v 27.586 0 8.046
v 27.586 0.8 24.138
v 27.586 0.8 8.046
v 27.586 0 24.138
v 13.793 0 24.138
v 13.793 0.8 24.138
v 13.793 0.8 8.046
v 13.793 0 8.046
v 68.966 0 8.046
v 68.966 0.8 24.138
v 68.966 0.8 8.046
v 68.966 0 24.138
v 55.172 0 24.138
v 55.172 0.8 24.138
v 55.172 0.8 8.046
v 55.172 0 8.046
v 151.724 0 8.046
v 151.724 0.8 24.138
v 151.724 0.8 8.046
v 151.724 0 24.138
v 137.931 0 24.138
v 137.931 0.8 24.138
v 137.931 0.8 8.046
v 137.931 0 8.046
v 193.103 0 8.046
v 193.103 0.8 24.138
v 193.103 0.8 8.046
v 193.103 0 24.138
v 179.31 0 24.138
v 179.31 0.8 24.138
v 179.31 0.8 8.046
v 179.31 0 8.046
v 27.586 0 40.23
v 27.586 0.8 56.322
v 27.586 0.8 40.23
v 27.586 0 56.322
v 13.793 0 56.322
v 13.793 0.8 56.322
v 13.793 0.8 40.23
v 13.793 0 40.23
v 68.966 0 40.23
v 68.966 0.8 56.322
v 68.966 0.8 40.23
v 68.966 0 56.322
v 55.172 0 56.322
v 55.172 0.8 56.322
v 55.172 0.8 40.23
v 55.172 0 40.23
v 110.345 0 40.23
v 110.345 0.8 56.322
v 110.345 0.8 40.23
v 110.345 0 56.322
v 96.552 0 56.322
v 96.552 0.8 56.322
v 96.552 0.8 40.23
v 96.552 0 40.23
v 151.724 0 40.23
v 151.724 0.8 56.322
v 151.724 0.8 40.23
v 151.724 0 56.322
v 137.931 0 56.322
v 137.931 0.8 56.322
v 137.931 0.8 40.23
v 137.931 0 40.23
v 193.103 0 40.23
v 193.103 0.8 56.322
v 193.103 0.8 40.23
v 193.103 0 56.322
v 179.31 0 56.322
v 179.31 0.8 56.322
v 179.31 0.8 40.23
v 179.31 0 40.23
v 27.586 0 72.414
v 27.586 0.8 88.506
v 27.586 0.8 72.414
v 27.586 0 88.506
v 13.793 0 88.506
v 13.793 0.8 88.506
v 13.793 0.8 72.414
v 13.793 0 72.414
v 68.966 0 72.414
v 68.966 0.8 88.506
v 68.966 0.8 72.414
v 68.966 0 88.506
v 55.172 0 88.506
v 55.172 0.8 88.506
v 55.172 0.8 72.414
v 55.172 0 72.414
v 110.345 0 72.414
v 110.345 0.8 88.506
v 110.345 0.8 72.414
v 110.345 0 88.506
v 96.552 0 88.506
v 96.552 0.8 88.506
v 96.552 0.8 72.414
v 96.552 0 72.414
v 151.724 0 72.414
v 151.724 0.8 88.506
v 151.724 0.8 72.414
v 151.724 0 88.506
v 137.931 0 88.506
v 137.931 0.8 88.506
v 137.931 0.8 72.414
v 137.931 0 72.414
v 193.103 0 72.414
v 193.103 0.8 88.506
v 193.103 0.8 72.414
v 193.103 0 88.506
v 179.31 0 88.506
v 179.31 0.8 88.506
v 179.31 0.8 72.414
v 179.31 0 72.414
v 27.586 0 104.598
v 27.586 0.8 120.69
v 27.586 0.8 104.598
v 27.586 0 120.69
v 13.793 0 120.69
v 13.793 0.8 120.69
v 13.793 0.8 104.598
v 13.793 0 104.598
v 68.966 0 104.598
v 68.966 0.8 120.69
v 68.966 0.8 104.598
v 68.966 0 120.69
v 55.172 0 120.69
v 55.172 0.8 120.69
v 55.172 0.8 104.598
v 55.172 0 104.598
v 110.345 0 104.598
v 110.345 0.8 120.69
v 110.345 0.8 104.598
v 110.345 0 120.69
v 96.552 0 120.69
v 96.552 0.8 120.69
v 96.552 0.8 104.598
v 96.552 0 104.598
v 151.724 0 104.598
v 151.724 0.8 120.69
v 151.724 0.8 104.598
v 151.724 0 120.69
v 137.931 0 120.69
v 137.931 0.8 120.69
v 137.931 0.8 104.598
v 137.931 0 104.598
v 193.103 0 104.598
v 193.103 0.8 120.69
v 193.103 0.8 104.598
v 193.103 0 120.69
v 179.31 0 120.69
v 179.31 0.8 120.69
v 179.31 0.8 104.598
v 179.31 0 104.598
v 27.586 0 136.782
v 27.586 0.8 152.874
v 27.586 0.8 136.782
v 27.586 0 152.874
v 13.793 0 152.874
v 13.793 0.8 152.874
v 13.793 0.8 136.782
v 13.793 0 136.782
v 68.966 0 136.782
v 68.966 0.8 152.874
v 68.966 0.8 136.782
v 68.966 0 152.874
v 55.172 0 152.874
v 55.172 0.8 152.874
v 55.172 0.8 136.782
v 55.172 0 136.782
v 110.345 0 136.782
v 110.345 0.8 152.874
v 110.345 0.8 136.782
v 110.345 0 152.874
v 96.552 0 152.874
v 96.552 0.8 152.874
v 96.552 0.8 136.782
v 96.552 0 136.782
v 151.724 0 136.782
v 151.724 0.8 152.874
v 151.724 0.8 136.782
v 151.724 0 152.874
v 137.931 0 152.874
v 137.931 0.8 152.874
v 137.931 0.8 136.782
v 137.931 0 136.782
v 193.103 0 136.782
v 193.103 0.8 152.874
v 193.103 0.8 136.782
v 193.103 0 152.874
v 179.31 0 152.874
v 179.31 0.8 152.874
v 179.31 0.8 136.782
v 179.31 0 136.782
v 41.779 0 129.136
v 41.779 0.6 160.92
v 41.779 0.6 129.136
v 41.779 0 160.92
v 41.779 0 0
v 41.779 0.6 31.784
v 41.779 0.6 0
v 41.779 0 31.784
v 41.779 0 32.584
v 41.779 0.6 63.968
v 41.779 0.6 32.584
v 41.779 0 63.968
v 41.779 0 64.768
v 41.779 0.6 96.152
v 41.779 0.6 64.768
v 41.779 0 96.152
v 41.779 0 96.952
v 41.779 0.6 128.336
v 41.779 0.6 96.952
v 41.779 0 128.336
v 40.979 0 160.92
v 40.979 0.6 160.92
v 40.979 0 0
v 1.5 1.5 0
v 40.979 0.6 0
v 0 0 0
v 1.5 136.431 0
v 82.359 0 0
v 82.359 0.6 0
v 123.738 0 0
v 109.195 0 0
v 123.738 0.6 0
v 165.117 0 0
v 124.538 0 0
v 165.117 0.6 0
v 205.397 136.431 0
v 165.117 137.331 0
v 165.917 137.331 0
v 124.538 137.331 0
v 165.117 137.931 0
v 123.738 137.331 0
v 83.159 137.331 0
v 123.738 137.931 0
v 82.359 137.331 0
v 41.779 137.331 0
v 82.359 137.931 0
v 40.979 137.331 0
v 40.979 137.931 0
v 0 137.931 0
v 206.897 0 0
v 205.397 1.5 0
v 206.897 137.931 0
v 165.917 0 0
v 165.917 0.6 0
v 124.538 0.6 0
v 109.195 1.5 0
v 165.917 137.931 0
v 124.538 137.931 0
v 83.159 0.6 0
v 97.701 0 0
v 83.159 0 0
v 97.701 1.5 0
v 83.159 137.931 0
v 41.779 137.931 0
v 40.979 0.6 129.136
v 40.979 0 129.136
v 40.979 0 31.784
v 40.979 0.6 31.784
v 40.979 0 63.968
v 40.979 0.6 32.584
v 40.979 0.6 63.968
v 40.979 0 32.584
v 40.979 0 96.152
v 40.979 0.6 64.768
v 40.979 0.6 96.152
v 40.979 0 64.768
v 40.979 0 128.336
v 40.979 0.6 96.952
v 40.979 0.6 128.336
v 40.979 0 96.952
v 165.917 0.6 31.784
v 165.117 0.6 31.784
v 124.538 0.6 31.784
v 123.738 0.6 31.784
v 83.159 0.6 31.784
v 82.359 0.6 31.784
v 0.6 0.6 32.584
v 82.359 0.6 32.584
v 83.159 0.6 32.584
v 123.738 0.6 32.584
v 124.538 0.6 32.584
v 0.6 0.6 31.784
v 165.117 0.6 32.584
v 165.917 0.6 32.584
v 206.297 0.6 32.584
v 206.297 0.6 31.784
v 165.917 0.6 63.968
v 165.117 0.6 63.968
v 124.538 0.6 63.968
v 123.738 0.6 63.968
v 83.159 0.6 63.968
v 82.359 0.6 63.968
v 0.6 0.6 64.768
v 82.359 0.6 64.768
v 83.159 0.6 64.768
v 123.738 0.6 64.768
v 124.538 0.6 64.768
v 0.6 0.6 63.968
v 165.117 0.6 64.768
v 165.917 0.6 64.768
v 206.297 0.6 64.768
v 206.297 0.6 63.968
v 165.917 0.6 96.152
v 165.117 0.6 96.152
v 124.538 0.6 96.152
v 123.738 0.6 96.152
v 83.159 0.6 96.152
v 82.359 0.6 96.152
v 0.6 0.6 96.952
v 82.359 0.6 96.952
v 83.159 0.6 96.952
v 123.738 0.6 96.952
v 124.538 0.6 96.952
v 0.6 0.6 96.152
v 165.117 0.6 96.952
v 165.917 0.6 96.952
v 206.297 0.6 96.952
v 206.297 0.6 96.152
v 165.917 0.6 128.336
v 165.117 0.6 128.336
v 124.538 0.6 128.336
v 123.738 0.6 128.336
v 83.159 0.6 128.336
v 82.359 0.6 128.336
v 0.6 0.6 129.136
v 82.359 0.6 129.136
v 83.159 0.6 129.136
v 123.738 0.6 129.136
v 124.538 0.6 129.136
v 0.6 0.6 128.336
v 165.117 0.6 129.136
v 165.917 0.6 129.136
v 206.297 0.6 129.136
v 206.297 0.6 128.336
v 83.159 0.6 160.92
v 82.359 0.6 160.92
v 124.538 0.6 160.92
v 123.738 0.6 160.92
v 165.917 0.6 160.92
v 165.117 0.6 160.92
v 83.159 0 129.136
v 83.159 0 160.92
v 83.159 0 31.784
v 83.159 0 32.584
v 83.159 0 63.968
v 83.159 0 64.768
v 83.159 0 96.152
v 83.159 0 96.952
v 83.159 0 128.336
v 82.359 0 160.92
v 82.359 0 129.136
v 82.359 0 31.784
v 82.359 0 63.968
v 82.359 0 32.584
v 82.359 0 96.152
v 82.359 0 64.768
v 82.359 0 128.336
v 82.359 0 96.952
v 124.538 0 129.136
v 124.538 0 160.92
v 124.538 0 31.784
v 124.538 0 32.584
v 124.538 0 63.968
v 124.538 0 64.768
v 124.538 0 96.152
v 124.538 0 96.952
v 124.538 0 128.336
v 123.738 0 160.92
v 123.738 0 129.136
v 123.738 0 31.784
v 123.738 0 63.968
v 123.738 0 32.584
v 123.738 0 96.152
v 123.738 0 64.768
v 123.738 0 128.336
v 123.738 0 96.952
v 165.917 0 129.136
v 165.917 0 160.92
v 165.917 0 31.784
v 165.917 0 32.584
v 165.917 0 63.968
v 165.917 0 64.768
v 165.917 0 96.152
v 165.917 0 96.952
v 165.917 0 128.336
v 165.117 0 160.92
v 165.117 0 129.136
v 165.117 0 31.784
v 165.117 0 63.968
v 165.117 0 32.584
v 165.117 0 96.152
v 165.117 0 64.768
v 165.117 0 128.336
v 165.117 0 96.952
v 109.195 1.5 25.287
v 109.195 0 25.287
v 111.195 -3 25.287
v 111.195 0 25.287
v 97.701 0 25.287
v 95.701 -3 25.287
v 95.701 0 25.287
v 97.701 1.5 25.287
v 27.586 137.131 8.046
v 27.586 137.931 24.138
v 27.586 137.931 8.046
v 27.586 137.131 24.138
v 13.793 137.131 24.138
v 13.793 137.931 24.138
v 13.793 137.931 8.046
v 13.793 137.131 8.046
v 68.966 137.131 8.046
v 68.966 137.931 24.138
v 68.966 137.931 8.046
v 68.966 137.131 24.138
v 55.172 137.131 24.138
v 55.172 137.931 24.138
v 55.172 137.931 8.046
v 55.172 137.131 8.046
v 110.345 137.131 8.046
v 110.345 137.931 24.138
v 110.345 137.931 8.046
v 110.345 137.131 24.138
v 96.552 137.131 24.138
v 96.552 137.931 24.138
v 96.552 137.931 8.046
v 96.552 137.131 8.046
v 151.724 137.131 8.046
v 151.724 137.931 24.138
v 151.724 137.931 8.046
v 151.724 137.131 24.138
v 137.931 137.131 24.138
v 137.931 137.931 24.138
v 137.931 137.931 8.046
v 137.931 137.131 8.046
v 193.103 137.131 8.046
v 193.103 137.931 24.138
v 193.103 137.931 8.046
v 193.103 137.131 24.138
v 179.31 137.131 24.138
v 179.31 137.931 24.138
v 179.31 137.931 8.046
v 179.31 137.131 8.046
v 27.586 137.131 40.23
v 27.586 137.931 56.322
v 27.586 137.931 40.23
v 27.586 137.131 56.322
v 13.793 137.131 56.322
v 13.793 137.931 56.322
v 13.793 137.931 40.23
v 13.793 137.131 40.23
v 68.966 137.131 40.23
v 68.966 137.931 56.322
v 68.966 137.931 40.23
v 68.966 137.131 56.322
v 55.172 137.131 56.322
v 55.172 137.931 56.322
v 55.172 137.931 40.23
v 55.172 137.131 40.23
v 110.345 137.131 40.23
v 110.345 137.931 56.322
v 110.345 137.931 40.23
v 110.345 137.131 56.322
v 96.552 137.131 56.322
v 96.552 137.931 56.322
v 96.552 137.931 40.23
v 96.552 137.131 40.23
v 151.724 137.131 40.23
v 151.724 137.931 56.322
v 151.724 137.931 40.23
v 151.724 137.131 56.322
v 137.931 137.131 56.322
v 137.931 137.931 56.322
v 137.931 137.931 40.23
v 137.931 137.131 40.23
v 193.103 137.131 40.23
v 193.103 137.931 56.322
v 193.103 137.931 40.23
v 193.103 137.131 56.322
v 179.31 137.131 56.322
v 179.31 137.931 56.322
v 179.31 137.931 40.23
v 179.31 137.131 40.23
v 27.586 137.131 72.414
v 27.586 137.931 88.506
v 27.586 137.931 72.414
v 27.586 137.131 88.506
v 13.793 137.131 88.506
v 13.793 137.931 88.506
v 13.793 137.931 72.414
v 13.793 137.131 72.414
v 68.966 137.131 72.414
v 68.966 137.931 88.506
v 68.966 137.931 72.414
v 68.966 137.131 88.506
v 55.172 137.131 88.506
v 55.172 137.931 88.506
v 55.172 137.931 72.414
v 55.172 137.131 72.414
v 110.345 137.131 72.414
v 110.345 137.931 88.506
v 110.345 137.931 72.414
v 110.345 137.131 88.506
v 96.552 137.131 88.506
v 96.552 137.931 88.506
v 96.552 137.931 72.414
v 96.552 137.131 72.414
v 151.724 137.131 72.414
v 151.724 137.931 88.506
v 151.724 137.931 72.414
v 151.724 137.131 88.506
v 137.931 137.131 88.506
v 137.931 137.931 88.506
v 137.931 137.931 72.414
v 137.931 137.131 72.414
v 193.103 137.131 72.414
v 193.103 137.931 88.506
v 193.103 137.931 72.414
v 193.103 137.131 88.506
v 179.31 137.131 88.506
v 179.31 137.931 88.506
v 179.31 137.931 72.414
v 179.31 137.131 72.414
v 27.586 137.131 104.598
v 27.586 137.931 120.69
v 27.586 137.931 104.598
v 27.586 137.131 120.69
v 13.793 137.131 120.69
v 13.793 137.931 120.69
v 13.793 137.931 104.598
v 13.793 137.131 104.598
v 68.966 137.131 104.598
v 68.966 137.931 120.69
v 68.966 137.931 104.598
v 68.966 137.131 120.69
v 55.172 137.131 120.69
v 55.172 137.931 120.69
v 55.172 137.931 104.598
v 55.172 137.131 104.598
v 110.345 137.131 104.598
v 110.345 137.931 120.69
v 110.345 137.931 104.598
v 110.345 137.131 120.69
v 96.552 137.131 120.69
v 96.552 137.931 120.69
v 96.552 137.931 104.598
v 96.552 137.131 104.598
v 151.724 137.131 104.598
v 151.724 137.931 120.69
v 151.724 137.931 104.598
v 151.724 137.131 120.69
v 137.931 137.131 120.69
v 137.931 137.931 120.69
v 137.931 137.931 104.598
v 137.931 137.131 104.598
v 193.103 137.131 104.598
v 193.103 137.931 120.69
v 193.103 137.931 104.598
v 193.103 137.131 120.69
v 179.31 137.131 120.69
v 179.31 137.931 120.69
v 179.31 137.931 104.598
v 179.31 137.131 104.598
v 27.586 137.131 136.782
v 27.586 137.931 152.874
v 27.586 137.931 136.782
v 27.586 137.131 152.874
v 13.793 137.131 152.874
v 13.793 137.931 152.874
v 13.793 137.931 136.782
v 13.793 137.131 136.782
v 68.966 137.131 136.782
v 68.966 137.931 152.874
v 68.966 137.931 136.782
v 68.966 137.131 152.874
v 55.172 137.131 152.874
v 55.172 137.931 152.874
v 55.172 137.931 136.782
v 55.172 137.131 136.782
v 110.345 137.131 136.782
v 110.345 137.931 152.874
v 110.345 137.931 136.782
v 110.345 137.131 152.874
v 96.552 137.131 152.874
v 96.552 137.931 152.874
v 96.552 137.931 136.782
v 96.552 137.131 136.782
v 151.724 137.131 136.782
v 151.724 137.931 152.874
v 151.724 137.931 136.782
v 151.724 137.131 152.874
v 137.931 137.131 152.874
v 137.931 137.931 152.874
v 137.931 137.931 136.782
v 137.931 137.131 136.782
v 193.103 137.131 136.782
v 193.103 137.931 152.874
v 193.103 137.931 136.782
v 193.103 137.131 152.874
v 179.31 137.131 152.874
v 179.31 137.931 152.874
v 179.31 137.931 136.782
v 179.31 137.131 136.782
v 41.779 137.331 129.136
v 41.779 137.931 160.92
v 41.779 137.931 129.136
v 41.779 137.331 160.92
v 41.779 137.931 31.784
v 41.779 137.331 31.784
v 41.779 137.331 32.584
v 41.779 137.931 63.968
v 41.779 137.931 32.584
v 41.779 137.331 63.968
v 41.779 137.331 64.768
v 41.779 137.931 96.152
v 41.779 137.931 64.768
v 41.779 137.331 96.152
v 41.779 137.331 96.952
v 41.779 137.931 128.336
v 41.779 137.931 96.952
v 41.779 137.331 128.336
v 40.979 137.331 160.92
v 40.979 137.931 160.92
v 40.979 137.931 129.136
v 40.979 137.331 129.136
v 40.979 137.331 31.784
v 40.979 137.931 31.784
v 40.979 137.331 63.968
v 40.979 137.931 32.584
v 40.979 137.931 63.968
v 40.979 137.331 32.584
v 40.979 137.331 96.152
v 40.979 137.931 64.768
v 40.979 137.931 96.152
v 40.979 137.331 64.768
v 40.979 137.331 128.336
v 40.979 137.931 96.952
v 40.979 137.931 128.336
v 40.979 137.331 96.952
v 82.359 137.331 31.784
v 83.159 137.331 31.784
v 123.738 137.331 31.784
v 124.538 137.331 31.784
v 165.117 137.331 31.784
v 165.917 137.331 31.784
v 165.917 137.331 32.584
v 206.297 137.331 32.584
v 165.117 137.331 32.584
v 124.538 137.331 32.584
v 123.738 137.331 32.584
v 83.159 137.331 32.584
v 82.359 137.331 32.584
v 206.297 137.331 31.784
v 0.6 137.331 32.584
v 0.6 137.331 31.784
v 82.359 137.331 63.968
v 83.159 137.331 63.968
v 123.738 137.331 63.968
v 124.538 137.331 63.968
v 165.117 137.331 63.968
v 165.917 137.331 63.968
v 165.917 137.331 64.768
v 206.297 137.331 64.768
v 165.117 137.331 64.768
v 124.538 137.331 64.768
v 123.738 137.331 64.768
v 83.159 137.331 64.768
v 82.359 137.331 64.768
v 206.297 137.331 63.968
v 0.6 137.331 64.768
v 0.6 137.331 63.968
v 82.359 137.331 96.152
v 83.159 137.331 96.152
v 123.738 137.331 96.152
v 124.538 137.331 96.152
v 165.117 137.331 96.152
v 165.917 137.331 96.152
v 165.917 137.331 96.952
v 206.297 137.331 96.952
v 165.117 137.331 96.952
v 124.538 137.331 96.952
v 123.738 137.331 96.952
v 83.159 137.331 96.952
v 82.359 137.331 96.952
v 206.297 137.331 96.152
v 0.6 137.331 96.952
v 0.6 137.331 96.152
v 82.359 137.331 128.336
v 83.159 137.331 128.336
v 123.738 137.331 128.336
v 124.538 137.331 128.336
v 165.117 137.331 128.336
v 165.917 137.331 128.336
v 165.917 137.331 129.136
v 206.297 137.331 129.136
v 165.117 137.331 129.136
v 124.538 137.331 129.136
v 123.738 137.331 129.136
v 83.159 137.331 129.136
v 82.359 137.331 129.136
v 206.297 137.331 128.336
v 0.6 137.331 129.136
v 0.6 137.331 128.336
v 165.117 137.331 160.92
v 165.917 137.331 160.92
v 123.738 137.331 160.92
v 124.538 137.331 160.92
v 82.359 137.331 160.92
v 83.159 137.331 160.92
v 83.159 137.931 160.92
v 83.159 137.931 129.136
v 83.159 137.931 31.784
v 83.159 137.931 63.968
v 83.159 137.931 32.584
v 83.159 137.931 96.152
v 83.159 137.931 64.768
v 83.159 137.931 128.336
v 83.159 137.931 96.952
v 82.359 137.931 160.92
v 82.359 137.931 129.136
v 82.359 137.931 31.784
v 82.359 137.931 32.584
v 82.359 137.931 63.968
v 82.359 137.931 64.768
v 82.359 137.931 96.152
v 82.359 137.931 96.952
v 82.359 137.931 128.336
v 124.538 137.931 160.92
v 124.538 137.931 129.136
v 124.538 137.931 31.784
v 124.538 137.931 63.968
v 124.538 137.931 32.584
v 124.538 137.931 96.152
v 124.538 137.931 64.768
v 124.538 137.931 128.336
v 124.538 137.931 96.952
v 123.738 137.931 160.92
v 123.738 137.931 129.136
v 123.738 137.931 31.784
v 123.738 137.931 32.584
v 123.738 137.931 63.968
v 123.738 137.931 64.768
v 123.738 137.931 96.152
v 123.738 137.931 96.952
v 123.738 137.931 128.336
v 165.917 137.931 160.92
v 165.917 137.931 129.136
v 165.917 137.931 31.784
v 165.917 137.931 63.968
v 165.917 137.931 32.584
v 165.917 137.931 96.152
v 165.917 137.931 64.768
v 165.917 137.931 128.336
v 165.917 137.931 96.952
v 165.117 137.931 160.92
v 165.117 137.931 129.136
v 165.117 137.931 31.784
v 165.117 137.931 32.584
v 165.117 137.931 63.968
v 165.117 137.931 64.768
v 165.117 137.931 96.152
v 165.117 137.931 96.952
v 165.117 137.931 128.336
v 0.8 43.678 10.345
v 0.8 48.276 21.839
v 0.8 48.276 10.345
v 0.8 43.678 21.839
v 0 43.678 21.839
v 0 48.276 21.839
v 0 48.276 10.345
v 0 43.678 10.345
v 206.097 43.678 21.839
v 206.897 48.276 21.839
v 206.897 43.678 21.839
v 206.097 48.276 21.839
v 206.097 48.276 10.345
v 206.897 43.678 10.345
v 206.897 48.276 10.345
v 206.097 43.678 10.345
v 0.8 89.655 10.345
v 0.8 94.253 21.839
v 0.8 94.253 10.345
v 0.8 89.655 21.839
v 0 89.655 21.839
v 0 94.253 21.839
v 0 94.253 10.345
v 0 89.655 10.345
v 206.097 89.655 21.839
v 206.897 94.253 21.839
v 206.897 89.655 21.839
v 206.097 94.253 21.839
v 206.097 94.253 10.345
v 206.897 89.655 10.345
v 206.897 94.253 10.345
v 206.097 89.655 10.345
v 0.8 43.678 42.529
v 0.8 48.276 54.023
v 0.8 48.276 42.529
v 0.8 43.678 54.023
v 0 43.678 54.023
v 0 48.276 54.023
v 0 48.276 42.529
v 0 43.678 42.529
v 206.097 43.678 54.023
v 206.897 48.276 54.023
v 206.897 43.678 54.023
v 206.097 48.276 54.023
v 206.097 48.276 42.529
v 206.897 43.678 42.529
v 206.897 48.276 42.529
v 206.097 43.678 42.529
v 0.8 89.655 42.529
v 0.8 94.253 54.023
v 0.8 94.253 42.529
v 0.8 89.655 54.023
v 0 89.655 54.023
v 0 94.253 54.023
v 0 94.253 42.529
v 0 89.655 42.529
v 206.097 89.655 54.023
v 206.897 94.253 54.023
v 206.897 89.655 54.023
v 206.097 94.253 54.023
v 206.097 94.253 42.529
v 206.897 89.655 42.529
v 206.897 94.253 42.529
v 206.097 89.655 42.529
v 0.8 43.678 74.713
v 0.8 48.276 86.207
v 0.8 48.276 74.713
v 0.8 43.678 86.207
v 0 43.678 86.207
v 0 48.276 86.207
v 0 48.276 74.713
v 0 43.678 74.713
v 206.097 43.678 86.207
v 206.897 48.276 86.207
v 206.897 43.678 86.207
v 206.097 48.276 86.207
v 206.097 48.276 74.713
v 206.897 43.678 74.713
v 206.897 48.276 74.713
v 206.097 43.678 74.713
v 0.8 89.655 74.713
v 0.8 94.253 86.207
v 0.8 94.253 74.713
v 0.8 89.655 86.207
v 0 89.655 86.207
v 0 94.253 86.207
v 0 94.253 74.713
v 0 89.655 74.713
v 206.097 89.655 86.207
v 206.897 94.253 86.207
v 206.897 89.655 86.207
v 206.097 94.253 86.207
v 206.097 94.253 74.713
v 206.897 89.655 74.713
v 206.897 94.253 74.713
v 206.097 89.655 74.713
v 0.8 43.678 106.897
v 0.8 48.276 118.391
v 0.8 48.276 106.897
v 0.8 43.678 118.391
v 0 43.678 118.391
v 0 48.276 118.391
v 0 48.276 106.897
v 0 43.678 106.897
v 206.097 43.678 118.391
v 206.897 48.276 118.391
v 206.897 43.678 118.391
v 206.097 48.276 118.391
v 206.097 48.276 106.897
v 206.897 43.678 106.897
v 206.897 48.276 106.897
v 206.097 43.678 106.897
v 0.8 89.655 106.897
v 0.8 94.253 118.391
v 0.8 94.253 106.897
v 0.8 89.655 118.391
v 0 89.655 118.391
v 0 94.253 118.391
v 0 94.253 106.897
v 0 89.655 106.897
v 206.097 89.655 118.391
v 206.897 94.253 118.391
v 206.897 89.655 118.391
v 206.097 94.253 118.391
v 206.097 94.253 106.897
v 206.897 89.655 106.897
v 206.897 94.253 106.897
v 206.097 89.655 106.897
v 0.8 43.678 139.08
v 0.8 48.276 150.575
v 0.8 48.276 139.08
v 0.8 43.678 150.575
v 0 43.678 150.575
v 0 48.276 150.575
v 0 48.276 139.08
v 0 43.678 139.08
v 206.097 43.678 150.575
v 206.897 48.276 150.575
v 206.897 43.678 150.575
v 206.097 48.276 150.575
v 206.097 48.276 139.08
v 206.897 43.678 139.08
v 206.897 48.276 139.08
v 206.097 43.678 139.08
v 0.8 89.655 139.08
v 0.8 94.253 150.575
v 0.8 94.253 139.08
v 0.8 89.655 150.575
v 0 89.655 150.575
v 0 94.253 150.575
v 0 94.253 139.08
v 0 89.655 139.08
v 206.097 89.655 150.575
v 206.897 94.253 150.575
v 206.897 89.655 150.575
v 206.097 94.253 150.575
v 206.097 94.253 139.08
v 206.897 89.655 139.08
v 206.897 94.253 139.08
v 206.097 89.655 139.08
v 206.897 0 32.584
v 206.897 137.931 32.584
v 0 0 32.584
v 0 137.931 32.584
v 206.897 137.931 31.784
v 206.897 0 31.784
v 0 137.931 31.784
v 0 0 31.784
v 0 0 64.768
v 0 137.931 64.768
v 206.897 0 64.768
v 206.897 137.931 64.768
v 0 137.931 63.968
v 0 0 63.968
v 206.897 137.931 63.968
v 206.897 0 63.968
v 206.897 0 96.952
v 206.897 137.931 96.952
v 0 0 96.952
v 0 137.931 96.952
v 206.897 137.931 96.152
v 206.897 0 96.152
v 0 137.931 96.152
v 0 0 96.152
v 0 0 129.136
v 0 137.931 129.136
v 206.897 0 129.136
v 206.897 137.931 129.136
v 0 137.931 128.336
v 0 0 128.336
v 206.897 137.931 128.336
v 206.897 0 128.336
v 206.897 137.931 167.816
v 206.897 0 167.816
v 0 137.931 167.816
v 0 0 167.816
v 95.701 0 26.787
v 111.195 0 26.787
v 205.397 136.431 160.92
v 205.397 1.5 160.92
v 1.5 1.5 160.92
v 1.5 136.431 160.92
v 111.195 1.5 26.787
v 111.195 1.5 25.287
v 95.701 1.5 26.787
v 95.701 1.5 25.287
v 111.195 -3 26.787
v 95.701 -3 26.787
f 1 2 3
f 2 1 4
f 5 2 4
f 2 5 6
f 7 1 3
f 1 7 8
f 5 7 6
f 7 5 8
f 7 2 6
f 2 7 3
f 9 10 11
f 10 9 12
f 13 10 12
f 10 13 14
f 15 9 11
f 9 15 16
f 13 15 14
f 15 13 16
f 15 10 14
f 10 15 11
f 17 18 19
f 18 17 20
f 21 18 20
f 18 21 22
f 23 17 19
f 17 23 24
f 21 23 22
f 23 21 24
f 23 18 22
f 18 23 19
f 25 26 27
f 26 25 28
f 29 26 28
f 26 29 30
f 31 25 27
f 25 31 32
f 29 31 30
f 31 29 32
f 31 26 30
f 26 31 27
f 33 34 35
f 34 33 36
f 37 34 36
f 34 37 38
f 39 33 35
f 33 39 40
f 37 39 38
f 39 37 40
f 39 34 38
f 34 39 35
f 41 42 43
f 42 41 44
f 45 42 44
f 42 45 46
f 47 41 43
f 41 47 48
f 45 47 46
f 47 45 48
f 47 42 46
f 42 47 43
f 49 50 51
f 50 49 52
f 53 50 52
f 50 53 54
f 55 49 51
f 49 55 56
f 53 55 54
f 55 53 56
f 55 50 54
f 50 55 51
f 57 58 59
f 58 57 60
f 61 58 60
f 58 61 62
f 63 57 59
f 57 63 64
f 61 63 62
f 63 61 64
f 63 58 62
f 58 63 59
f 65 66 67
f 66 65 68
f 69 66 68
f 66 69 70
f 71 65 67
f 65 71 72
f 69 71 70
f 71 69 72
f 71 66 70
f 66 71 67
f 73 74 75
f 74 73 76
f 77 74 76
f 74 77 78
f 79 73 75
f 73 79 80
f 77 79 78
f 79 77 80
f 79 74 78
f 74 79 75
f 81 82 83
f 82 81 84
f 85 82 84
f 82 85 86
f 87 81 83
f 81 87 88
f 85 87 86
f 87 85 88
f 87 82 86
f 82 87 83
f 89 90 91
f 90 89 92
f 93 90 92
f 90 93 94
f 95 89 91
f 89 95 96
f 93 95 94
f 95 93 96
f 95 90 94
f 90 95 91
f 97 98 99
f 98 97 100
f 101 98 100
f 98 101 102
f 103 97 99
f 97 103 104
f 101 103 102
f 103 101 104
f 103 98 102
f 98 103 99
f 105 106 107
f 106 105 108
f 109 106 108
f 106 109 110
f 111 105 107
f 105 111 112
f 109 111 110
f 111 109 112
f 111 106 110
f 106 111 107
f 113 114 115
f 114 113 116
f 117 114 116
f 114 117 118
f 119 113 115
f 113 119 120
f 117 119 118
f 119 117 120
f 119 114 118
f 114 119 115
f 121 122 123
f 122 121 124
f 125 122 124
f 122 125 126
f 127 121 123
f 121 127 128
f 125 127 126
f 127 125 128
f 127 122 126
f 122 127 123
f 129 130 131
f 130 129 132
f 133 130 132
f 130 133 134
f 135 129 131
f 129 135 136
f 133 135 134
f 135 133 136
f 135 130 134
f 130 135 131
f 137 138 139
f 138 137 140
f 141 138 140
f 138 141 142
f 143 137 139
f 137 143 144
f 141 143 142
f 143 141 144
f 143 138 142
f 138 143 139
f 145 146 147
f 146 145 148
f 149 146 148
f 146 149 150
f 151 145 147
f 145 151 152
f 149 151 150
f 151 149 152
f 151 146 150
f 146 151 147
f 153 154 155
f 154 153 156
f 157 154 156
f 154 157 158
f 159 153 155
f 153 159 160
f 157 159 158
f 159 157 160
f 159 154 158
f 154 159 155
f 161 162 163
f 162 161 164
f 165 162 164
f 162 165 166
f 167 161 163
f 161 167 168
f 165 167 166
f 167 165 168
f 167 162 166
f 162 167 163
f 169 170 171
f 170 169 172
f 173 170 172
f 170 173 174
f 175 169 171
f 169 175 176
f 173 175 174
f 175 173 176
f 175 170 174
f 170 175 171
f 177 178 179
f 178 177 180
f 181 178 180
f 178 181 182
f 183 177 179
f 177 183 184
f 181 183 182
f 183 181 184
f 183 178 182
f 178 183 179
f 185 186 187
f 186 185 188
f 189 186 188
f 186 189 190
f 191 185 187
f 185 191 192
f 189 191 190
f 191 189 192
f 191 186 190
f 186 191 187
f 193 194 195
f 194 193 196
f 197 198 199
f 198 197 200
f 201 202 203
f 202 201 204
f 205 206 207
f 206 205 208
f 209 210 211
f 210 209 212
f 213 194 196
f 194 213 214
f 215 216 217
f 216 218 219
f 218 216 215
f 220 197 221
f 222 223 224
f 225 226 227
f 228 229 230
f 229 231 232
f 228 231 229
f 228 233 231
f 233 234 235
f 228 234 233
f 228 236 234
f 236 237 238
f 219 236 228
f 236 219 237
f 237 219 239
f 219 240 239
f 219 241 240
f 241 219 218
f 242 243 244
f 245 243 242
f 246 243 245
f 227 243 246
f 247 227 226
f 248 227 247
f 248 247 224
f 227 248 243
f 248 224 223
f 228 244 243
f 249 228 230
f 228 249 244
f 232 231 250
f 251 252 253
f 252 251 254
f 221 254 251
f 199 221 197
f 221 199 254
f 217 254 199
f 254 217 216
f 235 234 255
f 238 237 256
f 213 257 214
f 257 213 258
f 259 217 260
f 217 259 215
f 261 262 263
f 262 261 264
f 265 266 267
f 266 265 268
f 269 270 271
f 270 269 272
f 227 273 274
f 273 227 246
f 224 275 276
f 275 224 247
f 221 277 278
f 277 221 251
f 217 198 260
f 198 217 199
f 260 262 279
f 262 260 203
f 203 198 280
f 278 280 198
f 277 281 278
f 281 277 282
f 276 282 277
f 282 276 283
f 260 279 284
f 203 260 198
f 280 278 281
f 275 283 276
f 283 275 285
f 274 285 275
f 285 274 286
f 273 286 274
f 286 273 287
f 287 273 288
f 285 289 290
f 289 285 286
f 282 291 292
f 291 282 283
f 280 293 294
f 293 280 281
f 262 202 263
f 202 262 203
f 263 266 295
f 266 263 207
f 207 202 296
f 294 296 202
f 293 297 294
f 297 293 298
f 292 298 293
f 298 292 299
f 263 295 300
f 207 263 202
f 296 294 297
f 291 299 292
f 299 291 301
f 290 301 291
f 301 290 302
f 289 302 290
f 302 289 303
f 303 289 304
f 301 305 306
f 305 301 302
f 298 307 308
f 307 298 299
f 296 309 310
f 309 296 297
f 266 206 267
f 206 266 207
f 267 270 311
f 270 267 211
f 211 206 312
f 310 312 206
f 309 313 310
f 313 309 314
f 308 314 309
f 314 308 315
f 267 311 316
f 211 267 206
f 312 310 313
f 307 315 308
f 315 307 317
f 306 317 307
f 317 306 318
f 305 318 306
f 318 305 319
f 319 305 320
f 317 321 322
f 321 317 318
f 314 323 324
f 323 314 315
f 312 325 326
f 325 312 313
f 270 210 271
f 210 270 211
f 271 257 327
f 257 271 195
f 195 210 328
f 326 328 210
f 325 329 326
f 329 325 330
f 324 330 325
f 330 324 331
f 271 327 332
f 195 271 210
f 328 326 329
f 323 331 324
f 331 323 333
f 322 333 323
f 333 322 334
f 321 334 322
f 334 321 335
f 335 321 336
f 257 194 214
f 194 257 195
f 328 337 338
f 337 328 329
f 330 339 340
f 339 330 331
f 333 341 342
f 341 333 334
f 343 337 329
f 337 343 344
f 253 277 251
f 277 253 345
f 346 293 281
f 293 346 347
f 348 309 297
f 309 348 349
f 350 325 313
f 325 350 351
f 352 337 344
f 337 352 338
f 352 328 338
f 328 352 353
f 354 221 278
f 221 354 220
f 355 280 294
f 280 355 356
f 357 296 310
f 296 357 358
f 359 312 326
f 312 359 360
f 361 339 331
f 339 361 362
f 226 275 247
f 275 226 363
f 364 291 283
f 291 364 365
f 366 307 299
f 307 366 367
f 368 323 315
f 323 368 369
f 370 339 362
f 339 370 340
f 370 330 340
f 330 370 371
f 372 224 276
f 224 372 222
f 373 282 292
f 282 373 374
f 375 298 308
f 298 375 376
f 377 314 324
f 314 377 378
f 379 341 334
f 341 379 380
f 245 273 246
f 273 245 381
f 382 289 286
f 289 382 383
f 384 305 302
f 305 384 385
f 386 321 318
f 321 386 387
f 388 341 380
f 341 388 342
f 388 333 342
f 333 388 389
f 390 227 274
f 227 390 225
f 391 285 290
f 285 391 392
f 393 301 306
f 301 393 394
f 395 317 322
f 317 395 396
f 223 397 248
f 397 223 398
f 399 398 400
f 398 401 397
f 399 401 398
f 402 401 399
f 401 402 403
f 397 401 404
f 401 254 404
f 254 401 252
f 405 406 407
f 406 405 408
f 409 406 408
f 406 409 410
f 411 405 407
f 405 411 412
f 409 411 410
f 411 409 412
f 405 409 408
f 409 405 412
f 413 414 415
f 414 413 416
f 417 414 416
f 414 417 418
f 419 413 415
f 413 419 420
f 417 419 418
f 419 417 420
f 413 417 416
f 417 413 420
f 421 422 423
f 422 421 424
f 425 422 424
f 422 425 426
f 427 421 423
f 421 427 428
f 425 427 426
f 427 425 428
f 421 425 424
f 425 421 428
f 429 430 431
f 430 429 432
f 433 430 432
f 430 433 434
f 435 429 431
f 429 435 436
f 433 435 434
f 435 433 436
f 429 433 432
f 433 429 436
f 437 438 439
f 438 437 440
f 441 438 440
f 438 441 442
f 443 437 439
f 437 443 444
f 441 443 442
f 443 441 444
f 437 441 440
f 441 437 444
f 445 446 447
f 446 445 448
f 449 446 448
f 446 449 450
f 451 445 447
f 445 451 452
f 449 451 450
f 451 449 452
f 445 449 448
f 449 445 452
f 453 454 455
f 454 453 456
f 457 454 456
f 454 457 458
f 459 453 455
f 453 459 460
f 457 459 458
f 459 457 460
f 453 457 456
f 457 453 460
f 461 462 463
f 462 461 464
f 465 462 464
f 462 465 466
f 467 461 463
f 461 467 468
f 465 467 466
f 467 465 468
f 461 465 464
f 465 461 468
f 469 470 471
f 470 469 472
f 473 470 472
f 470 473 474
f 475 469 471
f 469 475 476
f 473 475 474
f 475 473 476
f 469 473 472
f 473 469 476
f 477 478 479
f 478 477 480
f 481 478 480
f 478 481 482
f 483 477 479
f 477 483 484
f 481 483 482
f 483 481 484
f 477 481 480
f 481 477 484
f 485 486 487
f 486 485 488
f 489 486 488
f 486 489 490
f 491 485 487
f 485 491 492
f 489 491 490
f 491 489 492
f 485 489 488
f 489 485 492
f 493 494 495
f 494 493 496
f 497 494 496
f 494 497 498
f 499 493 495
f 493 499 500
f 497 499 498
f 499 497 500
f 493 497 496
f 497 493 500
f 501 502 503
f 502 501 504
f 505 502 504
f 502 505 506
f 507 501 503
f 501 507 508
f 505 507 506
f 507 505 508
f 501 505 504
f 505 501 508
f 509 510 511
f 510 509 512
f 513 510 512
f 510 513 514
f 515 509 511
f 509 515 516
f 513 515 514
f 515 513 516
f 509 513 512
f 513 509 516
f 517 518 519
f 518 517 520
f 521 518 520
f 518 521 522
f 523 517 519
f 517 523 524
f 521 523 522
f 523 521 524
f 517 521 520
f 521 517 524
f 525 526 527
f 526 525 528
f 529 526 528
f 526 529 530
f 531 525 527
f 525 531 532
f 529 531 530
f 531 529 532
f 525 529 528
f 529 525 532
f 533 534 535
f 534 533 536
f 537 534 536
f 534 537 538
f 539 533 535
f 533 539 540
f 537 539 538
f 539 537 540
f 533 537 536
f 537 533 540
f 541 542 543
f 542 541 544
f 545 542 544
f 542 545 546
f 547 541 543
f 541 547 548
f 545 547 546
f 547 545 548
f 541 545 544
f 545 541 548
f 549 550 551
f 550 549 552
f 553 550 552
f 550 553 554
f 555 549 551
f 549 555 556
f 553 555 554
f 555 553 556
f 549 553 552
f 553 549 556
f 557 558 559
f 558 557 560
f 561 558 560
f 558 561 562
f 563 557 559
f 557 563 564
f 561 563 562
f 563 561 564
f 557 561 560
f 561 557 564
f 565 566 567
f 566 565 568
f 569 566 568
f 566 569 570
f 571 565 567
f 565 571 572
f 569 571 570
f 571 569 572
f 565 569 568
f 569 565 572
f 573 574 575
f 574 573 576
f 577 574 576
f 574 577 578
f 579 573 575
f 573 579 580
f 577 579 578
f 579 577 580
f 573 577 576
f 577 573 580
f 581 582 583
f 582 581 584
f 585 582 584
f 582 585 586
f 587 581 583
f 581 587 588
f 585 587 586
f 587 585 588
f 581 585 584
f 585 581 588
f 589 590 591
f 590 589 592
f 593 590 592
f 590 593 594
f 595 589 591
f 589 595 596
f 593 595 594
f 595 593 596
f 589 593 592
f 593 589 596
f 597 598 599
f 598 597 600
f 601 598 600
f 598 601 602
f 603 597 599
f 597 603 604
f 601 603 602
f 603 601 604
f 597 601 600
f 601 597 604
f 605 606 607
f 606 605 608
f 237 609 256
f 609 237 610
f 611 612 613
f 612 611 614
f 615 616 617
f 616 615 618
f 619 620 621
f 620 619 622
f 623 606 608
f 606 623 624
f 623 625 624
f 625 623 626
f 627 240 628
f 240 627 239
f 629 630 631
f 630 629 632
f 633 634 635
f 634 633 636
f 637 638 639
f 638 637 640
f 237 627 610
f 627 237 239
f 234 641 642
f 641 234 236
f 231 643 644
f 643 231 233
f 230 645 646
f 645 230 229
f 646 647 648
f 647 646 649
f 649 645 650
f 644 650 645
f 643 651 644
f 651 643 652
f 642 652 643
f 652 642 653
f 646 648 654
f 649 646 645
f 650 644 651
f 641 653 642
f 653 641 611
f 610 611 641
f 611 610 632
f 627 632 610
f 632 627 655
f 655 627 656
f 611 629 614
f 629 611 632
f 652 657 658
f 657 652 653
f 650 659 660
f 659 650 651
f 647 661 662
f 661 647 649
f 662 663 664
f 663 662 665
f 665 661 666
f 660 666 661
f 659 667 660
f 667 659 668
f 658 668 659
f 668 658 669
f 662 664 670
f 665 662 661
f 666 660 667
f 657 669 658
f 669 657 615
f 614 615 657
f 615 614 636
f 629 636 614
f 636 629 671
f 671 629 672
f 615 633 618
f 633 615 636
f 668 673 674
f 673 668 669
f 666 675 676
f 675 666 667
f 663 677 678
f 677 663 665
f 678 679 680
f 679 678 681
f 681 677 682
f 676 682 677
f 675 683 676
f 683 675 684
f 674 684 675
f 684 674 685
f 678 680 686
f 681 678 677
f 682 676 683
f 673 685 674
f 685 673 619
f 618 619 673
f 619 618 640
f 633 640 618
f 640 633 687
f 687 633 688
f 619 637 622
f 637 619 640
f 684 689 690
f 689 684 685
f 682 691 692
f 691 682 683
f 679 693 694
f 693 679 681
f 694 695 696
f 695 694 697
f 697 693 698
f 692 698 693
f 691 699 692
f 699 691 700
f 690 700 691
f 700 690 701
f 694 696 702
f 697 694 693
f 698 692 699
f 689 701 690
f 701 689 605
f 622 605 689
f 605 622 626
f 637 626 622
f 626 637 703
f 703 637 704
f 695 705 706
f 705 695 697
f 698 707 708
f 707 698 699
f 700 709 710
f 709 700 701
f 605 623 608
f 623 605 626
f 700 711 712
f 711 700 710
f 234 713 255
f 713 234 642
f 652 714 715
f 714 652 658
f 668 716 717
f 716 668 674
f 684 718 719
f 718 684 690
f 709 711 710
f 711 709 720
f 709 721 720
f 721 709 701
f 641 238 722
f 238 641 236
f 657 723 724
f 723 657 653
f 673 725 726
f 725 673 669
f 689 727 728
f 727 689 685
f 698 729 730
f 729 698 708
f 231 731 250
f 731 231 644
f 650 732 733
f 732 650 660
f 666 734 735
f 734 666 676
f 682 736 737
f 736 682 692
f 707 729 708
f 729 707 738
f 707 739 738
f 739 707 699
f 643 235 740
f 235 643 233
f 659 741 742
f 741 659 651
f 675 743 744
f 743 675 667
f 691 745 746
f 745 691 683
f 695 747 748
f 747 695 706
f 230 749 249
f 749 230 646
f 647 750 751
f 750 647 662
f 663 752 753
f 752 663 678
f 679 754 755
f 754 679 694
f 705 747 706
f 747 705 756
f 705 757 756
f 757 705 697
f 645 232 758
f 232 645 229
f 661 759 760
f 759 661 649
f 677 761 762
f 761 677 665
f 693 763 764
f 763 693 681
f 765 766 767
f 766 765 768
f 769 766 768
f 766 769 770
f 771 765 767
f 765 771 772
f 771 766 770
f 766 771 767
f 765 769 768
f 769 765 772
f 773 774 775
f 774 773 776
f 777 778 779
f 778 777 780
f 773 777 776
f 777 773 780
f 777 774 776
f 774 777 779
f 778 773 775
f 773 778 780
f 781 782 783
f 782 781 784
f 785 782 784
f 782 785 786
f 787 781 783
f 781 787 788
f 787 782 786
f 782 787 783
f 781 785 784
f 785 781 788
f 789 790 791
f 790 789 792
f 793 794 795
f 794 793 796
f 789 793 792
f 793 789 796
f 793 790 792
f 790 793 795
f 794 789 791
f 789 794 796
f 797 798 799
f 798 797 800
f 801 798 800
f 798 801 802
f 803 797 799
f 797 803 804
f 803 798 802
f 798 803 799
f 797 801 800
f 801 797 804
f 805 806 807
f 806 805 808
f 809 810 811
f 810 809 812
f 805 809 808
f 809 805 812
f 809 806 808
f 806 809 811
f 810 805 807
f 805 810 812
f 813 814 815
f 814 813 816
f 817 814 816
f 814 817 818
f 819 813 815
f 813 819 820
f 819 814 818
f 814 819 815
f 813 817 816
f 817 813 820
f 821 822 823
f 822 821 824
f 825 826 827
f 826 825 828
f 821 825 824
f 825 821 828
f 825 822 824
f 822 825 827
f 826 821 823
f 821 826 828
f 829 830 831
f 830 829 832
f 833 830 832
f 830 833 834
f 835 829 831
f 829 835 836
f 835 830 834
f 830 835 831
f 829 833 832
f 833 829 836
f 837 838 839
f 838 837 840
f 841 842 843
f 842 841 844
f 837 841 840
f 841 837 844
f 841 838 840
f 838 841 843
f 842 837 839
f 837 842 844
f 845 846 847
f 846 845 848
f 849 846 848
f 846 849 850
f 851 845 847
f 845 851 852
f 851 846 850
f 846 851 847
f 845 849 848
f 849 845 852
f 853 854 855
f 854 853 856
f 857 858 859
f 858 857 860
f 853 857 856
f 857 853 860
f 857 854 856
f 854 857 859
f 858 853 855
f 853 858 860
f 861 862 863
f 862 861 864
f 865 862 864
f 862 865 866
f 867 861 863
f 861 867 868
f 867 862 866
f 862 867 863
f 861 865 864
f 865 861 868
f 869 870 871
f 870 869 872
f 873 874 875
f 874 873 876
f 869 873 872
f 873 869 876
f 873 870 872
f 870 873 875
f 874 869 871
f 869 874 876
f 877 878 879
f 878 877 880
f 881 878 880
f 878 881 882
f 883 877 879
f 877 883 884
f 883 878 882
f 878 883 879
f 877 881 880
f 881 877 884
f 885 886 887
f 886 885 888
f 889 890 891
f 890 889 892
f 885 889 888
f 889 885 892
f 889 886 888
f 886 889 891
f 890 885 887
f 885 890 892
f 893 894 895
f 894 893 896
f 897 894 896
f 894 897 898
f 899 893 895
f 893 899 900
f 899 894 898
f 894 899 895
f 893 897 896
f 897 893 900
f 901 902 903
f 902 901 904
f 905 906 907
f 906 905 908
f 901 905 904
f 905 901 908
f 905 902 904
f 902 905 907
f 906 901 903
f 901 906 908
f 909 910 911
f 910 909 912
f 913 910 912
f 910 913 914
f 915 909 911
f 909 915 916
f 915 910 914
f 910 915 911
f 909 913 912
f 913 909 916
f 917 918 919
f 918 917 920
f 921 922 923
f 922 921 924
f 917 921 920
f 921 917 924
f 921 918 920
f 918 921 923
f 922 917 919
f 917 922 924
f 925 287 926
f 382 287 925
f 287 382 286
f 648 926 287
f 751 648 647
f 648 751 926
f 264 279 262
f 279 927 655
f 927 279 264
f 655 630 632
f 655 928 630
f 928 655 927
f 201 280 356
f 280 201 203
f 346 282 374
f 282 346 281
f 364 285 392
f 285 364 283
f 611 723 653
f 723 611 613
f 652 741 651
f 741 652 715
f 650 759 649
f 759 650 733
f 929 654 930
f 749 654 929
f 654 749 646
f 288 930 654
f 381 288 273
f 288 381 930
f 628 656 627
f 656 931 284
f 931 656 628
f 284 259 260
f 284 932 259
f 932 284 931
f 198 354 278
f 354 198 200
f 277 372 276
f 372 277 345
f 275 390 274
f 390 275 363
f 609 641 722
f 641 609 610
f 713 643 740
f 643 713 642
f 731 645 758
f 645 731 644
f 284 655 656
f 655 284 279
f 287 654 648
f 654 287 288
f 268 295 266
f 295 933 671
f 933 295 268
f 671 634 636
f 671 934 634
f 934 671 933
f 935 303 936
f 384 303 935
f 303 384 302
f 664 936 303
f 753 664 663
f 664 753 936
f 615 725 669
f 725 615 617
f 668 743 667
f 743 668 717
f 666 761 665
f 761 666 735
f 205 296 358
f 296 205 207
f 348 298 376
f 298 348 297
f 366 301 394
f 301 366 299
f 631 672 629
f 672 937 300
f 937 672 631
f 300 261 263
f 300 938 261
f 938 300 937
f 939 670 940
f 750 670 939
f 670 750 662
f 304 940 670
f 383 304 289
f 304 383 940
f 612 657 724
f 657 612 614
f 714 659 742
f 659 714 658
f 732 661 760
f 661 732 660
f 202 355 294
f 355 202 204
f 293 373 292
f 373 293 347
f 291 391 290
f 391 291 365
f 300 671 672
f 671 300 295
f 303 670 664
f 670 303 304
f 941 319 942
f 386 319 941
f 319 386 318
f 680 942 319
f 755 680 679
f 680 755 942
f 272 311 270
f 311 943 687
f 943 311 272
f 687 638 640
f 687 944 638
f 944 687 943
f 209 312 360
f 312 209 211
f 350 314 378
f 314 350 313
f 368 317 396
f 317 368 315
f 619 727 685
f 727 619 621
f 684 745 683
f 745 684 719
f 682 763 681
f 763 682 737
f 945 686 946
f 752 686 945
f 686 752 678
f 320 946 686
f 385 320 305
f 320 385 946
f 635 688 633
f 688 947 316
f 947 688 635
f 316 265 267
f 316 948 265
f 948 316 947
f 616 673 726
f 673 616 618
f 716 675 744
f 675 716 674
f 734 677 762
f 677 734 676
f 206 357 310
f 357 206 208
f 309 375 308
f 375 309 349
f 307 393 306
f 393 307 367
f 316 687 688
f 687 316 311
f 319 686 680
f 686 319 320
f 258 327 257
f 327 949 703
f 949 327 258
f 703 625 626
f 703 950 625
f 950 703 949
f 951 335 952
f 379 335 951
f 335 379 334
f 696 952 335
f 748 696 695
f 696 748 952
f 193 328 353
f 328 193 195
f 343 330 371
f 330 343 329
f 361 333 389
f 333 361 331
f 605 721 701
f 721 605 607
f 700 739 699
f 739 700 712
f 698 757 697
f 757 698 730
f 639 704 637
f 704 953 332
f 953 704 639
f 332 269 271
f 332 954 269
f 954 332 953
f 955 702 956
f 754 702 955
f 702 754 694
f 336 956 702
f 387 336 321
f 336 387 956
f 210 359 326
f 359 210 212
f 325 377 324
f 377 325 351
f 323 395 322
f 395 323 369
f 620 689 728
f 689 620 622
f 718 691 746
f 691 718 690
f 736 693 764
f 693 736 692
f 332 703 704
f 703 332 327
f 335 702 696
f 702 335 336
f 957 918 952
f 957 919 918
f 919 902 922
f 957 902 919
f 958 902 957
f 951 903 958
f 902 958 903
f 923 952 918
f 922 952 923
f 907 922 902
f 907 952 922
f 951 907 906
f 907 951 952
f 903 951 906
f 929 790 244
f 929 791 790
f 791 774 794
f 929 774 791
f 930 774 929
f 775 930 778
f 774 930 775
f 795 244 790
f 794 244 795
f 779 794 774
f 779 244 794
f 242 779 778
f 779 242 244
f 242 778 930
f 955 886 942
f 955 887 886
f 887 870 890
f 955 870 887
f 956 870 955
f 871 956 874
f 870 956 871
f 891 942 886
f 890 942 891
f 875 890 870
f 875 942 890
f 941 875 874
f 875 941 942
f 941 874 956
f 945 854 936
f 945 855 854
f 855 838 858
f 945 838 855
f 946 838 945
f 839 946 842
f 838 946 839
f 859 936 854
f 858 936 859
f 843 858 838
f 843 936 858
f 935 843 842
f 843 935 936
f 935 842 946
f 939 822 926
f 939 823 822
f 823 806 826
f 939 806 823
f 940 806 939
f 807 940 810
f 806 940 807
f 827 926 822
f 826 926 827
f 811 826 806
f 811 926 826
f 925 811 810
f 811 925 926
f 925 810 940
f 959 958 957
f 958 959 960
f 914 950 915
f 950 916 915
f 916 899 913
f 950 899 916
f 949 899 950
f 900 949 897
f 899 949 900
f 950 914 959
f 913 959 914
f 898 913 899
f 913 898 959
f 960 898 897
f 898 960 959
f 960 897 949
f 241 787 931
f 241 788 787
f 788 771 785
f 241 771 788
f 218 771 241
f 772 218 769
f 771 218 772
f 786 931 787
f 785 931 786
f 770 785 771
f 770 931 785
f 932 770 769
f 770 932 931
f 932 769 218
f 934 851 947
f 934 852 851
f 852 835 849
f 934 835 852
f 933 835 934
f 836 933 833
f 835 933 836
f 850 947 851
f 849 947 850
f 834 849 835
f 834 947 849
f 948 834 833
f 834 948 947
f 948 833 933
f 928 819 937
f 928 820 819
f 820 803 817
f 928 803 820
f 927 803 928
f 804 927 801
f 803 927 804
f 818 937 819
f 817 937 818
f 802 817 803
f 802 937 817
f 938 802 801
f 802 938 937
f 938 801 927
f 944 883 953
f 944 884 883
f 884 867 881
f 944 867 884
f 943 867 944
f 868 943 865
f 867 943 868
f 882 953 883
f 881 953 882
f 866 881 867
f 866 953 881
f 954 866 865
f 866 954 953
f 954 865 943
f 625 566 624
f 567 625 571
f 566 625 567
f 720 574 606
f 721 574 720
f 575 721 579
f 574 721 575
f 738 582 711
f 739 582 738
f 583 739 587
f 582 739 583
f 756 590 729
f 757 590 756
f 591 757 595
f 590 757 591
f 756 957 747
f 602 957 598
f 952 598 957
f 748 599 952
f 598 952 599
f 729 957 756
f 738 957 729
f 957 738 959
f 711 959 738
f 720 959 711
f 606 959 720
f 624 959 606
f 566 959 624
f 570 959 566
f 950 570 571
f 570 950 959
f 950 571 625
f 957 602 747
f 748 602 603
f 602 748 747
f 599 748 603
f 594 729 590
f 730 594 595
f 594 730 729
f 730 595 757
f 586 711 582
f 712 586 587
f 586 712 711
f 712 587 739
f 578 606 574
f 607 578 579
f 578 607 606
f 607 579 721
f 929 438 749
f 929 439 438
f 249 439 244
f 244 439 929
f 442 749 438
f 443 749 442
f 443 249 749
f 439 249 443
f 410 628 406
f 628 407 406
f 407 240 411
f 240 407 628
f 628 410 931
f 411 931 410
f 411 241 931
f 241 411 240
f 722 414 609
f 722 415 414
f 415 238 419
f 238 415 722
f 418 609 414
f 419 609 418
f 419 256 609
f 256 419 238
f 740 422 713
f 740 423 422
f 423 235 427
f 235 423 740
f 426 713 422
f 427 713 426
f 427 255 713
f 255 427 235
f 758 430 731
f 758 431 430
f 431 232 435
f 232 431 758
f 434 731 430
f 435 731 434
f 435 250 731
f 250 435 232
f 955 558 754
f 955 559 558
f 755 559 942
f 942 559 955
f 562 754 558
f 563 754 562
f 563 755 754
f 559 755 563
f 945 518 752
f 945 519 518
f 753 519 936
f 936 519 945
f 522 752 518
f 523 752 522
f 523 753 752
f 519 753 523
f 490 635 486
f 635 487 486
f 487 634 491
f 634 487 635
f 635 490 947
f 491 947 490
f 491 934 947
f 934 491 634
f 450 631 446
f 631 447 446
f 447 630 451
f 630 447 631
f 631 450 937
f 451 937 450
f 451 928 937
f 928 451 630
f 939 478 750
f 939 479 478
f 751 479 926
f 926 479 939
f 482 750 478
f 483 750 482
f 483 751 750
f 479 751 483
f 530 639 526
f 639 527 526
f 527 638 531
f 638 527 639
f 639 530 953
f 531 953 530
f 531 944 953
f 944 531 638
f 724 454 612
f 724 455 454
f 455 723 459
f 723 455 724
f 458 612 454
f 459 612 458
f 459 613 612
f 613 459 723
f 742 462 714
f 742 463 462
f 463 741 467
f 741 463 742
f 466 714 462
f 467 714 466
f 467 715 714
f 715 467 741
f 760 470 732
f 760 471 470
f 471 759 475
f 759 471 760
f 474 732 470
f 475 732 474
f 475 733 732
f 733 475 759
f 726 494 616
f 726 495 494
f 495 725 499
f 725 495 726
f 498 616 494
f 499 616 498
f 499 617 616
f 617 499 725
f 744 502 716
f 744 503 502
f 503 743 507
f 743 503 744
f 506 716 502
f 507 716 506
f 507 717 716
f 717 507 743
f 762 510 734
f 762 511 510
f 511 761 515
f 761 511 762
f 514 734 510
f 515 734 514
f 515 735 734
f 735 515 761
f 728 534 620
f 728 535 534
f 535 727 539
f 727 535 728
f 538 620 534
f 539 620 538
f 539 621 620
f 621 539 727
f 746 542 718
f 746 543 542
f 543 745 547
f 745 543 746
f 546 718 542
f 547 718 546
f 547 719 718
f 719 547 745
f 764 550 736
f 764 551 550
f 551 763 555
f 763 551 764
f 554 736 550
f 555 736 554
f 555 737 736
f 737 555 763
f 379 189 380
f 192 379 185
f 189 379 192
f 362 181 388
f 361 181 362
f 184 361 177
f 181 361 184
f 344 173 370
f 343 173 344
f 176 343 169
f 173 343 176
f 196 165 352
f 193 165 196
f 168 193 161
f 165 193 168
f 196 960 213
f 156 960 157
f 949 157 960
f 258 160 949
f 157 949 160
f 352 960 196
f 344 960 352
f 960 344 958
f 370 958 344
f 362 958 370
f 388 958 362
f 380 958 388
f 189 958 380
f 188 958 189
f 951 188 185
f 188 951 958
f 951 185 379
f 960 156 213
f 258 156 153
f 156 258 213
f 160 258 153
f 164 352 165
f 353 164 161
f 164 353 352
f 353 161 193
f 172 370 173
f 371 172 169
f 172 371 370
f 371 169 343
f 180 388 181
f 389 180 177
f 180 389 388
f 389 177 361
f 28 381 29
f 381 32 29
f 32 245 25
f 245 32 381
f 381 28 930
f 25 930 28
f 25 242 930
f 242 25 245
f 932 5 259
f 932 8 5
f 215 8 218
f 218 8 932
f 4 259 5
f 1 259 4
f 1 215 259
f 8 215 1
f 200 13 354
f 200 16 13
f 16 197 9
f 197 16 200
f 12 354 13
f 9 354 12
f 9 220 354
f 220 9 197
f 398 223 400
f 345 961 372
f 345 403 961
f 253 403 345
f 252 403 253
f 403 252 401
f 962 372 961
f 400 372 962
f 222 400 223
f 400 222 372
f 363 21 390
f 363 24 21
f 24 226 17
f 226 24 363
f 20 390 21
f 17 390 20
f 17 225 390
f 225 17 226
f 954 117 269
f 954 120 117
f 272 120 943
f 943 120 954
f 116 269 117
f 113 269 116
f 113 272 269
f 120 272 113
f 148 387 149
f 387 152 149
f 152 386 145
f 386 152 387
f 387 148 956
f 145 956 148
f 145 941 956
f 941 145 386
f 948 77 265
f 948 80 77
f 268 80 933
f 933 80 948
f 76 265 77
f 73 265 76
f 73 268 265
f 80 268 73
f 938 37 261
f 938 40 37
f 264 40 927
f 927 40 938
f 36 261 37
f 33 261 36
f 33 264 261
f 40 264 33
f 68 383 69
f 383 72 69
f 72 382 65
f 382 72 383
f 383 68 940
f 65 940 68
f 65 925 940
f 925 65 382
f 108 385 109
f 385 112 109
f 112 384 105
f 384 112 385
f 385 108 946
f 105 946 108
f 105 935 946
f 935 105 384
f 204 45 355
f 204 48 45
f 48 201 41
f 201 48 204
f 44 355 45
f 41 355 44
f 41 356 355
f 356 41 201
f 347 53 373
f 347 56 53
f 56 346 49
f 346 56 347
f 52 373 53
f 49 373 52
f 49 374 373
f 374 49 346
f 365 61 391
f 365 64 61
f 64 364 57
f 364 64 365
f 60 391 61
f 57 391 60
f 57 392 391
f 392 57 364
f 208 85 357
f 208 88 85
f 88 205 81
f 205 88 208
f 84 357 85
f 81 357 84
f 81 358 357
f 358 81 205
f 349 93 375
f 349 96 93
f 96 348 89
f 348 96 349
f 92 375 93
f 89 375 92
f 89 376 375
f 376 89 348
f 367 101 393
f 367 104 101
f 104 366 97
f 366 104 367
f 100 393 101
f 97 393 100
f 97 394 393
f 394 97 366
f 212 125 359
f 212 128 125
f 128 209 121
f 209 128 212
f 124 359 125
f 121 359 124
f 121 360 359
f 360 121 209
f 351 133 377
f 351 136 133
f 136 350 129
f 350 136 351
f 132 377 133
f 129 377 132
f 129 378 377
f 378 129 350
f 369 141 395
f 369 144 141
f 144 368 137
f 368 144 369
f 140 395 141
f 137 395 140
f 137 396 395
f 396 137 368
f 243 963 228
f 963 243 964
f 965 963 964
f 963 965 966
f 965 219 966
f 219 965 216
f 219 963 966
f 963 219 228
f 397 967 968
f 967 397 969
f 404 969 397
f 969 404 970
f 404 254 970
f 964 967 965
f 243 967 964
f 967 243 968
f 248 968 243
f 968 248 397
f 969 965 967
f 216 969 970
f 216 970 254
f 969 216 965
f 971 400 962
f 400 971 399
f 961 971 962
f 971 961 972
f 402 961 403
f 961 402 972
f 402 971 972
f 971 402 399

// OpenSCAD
/*
 * PROMPT: Eastern European prefabricated concrete panel apartment block in H0 scale
 * (1:87). Parametric: number of floors, real-world width, real-world depth. Flat roof
 * with parapet, regular grid of recessed windows on front and back facades, two narrow
 * stairwell windows per floor on gable ends, horizontal and vertical concrete panel joint
 * grooves, recessed entrance door at ground floor centre, canopy above entrance.
 * FDM printable hollow shell open bottom, exterior detail only.
 */

$fn = 32;
S = 1 / 87;

// ── PARAMETERS ────────────────────────────────────────────────────────────────
floors     = 5;      // number of floors
bld_w_real = 18000;  // building width (real-world mm)
bld_d_real = 12000;  // building depth (real-world mm)

// ── FIXED DIMENSIONS (real-world mm → H0 mm) ──────────────────────────────────
wall_t     = 1.5;           // wall thickness, fixed for printability

floor_h    = 2800 * S;      // floor-to-floor height      32.2 mm
parapet_h  = 600  * S;      // parapet above roof line      6.9 mm
bay_w_real = 3600;          // apartment bay width, real mm

win_w      = 1200 * S;      // window width               13.8 mm
win_h      = 1400 * S;      // window height              16.1 mm
win_recess = 0.8;           // window recess depth

gwin_w     = 400  * S;      // gable stairwell window width  4.6 mm
gwin_h     = 1000 * S;      // gable stairwell window height 11.5 mm

door_w     = 1000 * S;      // entrance door width        11.5 mm
door_h     = 2200 * S;      // entrance door height       25.3 mm

balc_t     = 1.5;           // canopy slab thickness, fixed

groove_w   = 0.8;           // panel joint groove width
groove_d   = 0.6;           // panel joint groove depth

// ── DERIVED ───────────────────────────────────────────────────────────────────
bld_w      = bld_w_real * S;
bld_d      = bld_d_real * S;
bld_h      = floors * floor_h;
n_bays     = floor(bld_w_real / bay_w_real);
bay_w      = bld_w / n_bays;
center_bay = floor(n_bays / 2);

// ── MODULES ───────────────────────────────────────────────────────────────────

module front_cuts() {
    // recessed windows — every bay every floor, skip entrance bay on ground floor
    for (f = [0 : floors - 1]) {
        for (b = [0 : n_bays - 1]) {
            if (!(f == 0 && b == center_bay)) {
                translate([b*bay_w + (bay_w - win_w)/2,
                           -1,
                           f*floor_h + (floor_h - win_h)/2])
                    cube([win_w, win_recess + 1, win_h]);
            }
        }
    }
    // entrance — through-wall opening
    translate([center_bay*bay_w + (bay_w - door_w)/2, -1, 0])
        cube([door_w, wall_t + 2, door_h]);
    // vertical panel joint grooves at bay boundaries
    for (b = [1 : n_bays - 1]) {
        translate([b*bay_w - groove_w/2, -1, 0])
            cube([groove_w, groove_d + 1, bld_h]);
    }
}

module back_cuts() {
    for (f = [0 : floors - 1]) {
        for (b = [0 : n_bays - 1]) {
            translate([b*bay_w + (bay_w - win_w)/2,
                       bld_d - win_recess,
                       f*floor_h + (floor_h - win_h)/2])
                cube([win_w, win_recess + 1, win_h]);
        }
    }
    for (b = [1 : n_bays - 1]) {
        translate([b*bay_w - groove_w/2, bld_d - groove_d, 0])
            cube([groove_w, groove_d + 1, bld_h]);
    }
}

module gable_cuts() {
    // two stairwell windows per floor per gable, at 1/3 and 2/3 of depth
    for (f = [0 : floors - 1]) {
        wz = f * floor_h + (floor_h - gwin_h) / 2;
        for (pos = [1/3, 2/3]) {
            wy = pos * bld_d - gwin_w / 2;
            translate([-1, wy, wz])
                cube([win_recess + 1, gwin_w, gwin_h]);           // left gable
            translate([bld_w - win_recess, wy, wz])
                cube([win_recess + 1, gwin_w, gwin_h]);           // right gable
        }
    }
}

module floor_grooves() {
    // horizontal panel joint grooves at every floor boundary, all four walls
    for (f = [1 : floors - 1]) {
        gz = f * floor_h - groove_w / 2;
        translate([0,              -1,              gz]) cube([bld_w,        groove_d + 1, groove_w]);
        translate([0,              bld_d - groove_d, gz]) cube([bld_w,       groove_d + 1, groove_w]);
        translate([-1,             0,              gz]) cube([groove_d + 1, bld_d,        groove_w]);
        translate([bld_w - groove_d, 0,            gz]) cube([groove_d + 1, bld_d,        groove_w]);
    }
}

module shell() {
    difference() {
        cube([bld_w, bld_d, bld_h + parapet_h]);
        // hollow interior, open bottom — stops at eave height so the
        // roof deck + parapet (bld_h → bld_h+parapet_h) stays solid
        translate([wall_t, wall_t, 0])
            cube([bld_w - 2*wall_t, bld_d - 2*wall_t, bld_h]);
        front_cuts();
        back_cuts();
        gable_cuts();
        floor_grooves();
    }
}

module entrance_canopy() {
    cw  = door_w + 4;
    cp  = 3;                // canopy projection
    cx  = center_bay * bay_w + (bay_w - door_w) / 2 - 2;
    translate([cx, -cp, door_h])
        cube([cw, cp + wall_t, balc_t]);
}

// ── ASSEMBLY ──────────────────────────────────────────────────────────────────
union() {
    shell();
    entrance_canopy();
}
